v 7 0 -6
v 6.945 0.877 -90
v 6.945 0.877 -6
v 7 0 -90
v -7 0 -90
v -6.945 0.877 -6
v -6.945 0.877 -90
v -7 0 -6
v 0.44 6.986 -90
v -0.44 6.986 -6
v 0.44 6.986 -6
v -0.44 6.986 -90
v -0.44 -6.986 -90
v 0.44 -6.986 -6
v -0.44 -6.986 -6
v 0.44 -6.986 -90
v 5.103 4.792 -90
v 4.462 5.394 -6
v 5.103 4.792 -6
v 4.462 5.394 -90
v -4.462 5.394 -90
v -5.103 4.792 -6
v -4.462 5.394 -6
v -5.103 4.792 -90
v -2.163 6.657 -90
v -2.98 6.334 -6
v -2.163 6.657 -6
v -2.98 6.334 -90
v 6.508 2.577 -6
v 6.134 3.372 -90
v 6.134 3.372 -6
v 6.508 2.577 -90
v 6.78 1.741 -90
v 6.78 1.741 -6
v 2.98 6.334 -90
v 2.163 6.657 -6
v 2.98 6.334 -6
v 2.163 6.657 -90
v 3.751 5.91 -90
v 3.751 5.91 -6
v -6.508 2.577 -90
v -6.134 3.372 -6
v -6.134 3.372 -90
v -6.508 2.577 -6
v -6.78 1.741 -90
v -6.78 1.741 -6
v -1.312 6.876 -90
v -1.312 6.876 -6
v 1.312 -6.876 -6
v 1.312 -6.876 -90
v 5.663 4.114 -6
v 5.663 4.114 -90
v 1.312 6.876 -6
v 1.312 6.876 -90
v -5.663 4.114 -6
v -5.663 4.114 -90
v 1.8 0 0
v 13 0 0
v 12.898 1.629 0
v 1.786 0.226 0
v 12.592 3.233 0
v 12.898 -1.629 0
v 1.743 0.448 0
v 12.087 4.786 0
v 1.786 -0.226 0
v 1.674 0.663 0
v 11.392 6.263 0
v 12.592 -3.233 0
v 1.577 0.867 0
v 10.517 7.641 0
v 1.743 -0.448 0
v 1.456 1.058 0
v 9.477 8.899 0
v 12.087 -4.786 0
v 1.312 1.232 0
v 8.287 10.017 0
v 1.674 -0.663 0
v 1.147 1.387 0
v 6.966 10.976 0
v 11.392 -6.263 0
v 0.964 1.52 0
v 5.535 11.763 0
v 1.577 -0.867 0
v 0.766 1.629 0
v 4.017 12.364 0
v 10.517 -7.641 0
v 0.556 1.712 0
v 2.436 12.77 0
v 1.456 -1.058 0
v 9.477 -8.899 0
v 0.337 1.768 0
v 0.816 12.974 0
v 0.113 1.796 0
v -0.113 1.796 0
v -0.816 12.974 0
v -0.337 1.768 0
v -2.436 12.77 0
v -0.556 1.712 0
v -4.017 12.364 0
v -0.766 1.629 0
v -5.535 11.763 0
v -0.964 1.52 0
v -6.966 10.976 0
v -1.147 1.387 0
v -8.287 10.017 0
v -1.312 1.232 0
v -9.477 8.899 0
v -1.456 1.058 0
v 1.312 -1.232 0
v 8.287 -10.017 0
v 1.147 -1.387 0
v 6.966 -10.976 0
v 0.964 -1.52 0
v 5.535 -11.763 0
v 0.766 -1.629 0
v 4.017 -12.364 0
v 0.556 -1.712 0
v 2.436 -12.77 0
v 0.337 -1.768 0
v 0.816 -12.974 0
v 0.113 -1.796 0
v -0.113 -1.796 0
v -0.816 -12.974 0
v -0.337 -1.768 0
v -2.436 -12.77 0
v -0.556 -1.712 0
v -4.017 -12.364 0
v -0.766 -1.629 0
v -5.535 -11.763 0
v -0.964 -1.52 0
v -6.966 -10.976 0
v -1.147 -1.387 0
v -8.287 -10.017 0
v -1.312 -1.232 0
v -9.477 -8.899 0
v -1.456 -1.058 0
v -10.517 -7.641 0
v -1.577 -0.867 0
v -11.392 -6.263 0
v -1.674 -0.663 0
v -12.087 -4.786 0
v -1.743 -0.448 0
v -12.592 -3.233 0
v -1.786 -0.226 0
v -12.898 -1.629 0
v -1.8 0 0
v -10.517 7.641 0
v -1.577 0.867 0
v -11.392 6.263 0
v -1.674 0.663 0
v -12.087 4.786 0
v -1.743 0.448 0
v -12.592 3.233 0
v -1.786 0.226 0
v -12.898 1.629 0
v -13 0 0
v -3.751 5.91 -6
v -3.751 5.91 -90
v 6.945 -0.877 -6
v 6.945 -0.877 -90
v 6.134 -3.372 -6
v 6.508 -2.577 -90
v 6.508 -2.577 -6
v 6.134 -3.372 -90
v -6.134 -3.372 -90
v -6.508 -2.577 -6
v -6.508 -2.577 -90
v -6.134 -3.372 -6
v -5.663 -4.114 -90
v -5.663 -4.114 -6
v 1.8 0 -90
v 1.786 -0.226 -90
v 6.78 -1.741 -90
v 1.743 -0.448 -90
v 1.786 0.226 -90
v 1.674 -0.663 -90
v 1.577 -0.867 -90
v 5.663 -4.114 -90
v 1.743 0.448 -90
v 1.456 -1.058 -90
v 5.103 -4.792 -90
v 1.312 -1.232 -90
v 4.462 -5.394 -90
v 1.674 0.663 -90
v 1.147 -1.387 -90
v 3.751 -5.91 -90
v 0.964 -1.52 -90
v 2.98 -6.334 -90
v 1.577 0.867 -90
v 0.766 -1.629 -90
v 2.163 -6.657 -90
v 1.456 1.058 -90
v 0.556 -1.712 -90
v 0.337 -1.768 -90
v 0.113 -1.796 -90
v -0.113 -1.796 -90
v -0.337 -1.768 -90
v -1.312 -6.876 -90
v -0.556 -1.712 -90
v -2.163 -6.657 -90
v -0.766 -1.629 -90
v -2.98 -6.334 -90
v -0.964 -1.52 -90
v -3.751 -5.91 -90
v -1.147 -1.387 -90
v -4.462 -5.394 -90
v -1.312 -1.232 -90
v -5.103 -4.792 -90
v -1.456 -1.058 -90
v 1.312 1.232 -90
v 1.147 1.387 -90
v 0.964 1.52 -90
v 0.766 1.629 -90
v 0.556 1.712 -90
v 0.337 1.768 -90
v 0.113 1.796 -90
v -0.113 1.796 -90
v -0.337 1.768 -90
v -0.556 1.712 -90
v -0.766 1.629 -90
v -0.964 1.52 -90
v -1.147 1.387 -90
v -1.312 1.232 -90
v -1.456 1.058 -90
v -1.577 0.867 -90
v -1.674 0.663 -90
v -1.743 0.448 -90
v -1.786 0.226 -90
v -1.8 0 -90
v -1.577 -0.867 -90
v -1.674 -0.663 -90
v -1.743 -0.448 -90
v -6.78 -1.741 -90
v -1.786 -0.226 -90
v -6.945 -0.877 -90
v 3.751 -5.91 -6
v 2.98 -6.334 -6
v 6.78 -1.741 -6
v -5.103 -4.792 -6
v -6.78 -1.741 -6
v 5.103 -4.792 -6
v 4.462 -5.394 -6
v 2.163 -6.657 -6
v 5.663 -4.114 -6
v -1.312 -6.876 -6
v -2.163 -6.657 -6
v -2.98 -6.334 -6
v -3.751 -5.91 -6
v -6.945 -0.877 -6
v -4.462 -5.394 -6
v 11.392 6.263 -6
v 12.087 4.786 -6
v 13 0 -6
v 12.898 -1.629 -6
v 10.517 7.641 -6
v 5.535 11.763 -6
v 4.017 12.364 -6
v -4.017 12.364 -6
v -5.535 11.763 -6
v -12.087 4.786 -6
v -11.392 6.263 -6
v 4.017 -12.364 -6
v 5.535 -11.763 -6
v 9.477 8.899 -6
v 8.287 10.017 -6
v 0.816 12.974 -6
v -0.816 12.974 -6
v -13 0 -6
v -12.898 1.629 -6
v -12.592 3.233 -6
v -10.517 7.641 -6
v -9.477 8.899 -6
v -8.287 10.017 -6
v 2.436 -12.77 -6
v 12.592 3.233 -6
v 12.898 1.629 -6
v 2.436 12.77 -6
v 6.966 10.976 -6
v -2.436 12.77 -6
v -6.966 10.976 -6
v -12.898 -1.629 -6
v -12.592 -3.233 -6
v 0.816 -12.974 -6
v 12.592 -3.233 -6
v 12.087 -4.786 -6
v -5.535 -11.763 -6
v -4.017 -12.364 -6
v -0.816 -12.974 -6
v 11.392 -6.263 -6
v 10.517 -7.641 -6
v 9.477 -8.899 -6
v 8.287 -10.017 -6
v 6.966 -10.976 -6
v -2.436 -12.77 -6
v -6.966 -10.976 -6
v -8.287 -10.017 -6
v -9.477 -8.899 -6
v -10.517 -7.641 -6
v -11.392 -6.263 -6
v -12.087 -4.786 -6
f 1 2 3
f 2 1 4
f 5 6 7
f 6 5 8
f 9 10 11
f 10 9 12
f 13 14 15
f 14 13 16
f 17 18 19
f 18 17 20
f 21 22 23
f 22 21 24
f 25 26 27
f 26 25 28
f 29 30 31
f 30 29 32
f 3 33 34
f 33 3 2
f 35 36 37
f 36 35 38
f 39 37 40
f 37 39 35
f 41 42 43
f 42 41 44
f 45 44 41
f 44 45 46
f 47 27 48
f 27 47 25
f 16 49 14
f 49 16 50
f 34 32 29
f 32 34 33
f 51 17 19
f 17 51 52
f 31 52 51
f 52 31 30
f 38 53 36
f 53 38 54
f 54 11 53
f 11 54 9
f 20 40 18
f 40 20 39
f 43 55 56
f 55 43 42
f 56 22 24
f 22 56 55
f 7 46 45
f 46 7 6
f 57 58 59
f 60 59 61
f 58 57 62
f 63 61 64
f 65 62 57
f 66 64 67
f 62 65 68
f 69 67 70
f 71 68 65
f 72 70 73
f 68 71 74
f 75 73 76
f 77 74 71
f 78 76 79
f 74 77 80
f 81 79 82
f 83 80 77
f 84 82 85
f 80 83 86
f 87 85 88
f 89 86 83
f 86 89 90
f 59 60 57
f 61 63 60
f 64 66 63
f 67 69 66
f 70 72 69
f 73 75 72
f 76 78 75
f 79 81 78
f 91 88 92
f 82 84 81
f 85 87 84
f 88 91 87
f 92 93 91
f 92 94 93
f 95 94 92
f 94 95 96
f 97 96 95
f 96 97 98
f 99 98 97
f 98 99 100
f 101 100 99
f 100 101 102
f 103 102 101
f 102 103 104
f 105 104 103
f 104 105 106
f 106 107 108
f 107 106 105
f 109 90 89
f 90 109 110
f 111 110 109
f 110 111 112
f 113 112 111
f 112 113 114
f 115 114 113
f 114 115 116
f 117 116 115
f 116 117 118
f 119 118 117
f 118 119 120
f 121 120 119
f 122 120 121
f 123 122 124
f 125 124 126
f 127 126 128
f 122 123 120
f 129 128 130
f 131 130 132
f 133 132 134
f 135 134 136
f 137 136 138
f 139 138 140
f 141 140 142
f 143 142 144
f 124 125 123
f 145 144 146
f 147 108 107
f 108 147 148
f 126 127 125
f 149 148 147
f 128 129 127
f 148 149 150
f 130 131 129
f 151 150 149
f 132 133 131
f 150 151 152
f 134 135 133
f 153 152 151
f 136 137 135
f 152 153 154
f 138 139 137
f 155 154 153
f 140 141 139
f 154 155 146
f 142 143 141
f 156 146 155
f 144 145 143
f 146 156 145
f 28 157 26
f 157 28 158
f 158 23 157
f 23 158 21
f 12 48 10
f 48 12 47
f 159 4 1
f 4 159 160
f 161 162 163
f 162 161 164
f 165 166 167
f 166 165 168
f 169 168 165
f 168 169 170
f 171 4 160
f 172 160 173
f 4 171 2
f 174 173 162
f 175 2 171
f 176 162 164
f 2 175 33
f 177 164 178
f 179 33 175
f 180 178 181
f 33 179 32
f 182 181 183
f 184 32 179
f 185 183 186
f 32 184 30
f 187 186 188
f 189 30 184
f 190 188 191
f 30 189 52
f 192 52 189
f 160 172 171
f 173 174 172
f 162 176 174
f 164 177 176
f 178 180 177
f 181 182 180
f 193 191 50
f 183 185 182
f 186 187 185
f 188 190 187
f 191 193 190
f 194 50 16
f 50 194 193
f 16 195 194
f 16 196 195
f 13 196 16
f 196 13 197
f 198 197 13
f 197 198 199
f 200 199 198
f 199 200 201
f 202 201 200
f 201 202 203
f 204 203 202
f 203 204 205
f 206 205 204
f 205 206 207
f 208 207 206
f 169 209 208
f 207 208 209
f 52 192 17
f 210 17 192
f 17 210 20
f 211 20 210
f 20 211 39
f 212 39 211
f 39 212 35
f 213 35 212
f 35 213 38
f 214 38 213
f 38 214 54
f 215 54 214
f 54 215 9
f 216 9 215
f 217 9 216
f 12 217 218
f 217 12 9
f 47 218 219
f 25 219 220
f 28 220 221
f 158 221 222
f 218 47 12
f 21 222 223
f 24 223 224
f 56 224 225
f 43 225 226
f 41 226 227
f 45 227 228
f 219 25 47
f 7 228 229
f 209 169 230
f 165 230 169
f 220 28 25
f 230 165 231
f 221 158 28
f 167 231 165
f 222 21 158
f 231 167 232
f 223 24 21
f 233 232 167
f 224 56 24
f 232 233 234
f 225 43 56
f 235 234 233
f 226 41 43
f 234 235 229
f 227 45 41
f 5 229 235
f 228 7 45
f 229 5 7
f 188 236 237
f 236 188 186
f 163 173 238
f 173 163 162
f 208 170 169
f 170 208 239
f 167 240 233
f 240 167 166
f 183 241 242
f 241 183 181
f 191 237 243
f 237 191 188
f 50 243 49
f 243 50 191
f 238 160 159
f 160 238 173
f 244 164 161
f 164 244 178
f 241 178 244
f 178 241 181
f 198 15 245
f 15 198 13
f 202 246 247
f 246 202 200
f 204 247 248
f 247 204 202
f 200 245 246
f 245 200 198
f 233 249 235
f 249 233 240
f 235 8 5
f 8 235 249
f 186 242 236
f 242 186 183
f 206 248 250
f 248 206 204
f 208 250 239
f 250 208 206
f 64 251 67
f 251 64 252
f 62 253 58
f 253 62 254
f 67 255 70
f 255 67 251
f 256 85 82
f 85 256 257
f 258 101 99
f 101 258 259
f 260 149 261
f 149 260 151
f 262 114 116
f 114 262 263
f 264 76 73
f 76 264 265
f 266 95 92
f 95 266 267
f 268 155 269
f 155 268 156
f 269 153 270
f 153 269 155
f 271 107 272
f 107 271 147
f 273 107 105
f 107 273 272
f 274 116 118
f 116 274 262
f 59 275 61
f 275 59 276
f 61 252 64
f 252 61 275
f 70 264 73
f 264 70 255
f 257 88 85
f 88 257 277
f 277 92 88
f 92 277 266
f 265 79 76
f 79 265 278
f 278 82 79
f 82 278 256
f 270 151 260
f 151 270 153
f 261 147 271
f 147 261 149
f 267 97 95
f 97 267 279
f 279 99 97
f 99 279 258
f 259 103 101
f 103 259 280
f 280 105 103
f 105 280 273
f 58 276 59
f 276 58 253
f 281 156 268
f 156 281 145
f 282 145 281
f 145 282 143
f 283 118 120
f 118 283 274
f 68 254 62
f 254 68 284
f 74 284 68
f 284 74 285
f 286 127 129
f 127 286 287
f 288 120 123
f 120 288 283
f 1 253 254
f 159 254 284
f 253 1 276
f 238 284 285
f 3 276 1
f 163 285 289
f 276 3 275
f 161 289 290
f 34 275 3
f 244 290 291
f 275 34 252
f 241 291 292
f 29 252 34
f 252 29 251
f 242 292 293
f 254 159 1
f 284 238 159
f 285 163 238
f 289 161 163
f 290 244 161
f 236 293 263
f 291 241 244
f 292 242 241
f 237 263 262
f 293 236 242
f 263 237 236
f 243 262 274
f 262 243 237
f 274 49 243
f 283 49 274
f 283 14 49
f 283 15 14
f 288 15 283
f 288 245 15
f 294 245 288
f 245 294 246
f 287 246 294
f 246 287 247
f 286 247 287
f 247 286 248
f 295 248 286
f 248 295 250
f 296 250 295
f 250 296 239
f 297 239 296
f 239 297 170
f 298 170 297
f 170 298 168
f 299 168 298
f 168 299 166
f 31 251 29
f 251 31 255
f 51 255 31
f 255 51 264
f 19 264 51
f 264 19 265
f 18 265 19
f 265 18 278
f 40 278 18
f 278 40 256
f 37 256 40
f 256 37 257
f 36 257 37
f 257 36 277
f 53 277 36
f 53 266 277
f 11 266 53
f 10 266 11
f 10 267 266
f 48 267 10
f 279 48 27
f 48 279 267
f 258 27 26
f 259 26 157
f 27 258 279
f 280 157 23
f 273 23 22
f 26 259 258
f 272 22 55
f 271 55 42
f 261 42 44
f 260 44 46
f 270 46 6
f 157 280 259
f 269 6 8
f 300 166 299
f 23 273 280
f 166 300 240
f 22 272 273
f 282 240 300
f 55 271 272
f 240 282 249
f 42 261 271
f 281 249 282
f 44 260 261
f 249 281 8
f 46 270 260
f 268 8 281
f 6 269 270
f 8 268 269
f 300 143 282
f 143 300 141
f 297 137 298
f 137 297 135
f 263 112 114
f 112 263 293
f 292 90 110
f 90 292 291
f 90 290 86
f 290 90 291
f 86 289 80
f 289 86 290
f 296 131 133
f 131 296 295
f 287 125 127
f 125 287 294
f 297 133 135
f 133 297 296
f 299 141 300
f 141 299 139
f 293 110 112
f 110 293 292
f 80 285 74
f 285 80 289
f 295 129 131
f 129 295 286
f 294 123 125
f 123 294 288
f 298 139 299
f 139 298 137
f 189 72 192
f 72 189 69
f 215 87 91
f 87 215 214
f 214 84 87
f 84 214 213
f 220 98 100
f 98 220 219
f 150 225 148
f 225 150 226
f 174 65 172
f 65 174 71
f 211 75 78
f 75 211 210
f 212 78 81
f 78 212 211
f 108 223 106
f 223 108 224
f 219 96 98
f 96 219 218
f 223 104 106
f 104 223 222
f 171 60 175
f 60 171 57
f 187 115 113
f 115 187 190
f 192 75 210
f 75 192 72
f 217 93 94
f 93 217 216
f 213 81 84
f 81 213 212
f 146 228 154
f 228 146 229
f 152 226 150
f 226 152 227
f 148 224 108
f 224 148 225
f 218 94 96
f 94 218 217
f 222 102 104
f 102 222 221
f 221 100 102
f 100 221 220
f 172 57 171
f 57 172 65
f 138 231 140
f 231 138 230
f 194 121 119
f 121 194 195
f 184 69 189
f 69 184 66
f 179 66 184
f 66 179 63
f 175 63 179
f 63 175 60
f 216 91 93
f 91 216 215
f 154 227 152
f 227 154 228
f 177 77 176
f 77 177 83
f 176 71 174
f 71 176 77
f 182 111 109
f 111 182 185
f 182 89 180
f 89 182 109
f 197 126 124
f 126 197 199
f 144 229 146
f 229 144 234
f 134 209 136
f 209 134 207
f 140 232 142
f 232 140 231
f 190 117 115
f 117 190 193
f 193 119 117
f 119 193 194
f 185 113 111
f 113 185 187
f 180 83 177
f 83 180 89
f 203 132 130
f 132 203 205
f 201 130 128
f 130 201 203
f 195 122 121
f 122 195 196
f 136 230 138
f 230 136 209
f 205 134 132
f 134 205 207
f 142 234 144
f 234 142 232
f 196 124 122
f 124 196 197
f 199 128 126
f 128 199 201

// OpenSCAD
$fn = 50;


difference() {
	union() {
		translate(v = [0, 0, -90.0000000000]) {
			cylinder(h = 90, r = 7.0000000000);
		}
		translate(v = [0, 0, -6.0000000000]) {
			cylinder(h = 6, r = 13.0000000000);
		}
	}
	union() {
		#translate(v = [0, 0, -90]) {
			cylinder(h = 90, r = 1.8000000000);
		}
	}
}
